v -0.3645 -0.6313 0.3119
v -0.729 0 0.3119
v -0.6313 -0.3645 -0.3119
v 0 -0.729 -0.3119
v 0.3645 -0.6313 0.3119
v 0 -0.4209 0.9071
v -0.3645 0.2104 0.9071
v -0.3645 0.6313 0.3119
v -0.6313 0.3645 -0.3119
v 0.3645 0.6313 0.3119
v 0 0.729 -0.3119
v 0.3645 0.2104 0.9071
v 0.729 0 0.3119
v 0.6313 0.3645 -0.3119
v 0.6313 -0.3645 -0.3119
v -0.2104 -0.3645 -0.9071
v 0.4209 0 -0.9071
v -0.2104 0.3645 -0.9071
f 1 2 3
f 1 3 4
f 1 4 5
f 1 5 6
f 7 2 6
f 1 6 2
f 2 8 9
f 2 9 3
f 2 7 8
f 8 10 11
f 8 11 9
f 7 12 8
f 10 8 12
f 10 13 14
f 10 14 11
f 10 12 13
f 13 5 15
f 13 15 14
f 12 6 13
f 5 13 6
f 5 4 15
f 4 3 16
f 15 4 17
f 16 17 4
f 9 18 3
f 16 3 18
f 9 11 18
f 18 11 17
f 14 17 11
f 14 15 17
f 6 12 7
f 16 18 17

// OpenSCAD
polyhedron( points = [[-0.3645067326406, -0.631344180649067, 0.31187184271331], [-0.729013465281981, 7.40114810665326e-11, 0.31187184271331], [-0.36450673281067, 0.631344180764358, 0.31187184271331], [0.364506732320918, 0.631344180764358, 0.31187184271331], [0.729013465018991, 7.40129379280944e-11, 0.31187184271331], [0.36450673260437, -0.631344180649067, 0.31187184271331], [7.8176810145449e-13, -0.729013465256672, -0.311871842798437], [-0.631344180591376, -0.364506732577497, -0.311871842798437], [-0.631344180386672, 0.364506732541873, -0.311871842756472], [2.79271458369159e-10, 0.729013465019853, -0.311871842714507], [0.631344180773236, 0.364506732397376, -0.311871842714507], [0.631344180633994, -0.364506732721995, -0.311871842756472], [7.8176810145449e-13, -0.420896120341153, 0.907108844502167], [0.364506732344875, 0.210448060281594, 0.907108844502167], [-0.364506732607869, 0.210448060333937, 0.90710884450832], [-0.210448060151513, -0.364506732520874, -0.907108844443818], [-0.210448059935896, 0.364506732476342, -0.907108844401856], [0.420896120429358, -1.1393223971161e-11, -0.907108844408009]], faces = [[0, 1, 7], [0, 7, 6], [0, 6, 5], [0, 5, 12], [0, 12, 14, 1], [1, 2, 8], [1, 8, 7], [1, 14, 2], [2, 3, 9], [2, 9, 8], [2, 14, 13, 3], [3, 4, 10], [3, 10, 9], [3, 13, 4], [4, 5, 11], [4, 11, 10], [4, 13, 12, 5], [5, 6, 11], [6, 7, 15], [6, 15, 17, 11], [7, 8, 16, 15], [8, 9, 16], [9, 10, 17, 16], [10, 11, 17], [12, 13, 14], [15, 16, 17]]);
